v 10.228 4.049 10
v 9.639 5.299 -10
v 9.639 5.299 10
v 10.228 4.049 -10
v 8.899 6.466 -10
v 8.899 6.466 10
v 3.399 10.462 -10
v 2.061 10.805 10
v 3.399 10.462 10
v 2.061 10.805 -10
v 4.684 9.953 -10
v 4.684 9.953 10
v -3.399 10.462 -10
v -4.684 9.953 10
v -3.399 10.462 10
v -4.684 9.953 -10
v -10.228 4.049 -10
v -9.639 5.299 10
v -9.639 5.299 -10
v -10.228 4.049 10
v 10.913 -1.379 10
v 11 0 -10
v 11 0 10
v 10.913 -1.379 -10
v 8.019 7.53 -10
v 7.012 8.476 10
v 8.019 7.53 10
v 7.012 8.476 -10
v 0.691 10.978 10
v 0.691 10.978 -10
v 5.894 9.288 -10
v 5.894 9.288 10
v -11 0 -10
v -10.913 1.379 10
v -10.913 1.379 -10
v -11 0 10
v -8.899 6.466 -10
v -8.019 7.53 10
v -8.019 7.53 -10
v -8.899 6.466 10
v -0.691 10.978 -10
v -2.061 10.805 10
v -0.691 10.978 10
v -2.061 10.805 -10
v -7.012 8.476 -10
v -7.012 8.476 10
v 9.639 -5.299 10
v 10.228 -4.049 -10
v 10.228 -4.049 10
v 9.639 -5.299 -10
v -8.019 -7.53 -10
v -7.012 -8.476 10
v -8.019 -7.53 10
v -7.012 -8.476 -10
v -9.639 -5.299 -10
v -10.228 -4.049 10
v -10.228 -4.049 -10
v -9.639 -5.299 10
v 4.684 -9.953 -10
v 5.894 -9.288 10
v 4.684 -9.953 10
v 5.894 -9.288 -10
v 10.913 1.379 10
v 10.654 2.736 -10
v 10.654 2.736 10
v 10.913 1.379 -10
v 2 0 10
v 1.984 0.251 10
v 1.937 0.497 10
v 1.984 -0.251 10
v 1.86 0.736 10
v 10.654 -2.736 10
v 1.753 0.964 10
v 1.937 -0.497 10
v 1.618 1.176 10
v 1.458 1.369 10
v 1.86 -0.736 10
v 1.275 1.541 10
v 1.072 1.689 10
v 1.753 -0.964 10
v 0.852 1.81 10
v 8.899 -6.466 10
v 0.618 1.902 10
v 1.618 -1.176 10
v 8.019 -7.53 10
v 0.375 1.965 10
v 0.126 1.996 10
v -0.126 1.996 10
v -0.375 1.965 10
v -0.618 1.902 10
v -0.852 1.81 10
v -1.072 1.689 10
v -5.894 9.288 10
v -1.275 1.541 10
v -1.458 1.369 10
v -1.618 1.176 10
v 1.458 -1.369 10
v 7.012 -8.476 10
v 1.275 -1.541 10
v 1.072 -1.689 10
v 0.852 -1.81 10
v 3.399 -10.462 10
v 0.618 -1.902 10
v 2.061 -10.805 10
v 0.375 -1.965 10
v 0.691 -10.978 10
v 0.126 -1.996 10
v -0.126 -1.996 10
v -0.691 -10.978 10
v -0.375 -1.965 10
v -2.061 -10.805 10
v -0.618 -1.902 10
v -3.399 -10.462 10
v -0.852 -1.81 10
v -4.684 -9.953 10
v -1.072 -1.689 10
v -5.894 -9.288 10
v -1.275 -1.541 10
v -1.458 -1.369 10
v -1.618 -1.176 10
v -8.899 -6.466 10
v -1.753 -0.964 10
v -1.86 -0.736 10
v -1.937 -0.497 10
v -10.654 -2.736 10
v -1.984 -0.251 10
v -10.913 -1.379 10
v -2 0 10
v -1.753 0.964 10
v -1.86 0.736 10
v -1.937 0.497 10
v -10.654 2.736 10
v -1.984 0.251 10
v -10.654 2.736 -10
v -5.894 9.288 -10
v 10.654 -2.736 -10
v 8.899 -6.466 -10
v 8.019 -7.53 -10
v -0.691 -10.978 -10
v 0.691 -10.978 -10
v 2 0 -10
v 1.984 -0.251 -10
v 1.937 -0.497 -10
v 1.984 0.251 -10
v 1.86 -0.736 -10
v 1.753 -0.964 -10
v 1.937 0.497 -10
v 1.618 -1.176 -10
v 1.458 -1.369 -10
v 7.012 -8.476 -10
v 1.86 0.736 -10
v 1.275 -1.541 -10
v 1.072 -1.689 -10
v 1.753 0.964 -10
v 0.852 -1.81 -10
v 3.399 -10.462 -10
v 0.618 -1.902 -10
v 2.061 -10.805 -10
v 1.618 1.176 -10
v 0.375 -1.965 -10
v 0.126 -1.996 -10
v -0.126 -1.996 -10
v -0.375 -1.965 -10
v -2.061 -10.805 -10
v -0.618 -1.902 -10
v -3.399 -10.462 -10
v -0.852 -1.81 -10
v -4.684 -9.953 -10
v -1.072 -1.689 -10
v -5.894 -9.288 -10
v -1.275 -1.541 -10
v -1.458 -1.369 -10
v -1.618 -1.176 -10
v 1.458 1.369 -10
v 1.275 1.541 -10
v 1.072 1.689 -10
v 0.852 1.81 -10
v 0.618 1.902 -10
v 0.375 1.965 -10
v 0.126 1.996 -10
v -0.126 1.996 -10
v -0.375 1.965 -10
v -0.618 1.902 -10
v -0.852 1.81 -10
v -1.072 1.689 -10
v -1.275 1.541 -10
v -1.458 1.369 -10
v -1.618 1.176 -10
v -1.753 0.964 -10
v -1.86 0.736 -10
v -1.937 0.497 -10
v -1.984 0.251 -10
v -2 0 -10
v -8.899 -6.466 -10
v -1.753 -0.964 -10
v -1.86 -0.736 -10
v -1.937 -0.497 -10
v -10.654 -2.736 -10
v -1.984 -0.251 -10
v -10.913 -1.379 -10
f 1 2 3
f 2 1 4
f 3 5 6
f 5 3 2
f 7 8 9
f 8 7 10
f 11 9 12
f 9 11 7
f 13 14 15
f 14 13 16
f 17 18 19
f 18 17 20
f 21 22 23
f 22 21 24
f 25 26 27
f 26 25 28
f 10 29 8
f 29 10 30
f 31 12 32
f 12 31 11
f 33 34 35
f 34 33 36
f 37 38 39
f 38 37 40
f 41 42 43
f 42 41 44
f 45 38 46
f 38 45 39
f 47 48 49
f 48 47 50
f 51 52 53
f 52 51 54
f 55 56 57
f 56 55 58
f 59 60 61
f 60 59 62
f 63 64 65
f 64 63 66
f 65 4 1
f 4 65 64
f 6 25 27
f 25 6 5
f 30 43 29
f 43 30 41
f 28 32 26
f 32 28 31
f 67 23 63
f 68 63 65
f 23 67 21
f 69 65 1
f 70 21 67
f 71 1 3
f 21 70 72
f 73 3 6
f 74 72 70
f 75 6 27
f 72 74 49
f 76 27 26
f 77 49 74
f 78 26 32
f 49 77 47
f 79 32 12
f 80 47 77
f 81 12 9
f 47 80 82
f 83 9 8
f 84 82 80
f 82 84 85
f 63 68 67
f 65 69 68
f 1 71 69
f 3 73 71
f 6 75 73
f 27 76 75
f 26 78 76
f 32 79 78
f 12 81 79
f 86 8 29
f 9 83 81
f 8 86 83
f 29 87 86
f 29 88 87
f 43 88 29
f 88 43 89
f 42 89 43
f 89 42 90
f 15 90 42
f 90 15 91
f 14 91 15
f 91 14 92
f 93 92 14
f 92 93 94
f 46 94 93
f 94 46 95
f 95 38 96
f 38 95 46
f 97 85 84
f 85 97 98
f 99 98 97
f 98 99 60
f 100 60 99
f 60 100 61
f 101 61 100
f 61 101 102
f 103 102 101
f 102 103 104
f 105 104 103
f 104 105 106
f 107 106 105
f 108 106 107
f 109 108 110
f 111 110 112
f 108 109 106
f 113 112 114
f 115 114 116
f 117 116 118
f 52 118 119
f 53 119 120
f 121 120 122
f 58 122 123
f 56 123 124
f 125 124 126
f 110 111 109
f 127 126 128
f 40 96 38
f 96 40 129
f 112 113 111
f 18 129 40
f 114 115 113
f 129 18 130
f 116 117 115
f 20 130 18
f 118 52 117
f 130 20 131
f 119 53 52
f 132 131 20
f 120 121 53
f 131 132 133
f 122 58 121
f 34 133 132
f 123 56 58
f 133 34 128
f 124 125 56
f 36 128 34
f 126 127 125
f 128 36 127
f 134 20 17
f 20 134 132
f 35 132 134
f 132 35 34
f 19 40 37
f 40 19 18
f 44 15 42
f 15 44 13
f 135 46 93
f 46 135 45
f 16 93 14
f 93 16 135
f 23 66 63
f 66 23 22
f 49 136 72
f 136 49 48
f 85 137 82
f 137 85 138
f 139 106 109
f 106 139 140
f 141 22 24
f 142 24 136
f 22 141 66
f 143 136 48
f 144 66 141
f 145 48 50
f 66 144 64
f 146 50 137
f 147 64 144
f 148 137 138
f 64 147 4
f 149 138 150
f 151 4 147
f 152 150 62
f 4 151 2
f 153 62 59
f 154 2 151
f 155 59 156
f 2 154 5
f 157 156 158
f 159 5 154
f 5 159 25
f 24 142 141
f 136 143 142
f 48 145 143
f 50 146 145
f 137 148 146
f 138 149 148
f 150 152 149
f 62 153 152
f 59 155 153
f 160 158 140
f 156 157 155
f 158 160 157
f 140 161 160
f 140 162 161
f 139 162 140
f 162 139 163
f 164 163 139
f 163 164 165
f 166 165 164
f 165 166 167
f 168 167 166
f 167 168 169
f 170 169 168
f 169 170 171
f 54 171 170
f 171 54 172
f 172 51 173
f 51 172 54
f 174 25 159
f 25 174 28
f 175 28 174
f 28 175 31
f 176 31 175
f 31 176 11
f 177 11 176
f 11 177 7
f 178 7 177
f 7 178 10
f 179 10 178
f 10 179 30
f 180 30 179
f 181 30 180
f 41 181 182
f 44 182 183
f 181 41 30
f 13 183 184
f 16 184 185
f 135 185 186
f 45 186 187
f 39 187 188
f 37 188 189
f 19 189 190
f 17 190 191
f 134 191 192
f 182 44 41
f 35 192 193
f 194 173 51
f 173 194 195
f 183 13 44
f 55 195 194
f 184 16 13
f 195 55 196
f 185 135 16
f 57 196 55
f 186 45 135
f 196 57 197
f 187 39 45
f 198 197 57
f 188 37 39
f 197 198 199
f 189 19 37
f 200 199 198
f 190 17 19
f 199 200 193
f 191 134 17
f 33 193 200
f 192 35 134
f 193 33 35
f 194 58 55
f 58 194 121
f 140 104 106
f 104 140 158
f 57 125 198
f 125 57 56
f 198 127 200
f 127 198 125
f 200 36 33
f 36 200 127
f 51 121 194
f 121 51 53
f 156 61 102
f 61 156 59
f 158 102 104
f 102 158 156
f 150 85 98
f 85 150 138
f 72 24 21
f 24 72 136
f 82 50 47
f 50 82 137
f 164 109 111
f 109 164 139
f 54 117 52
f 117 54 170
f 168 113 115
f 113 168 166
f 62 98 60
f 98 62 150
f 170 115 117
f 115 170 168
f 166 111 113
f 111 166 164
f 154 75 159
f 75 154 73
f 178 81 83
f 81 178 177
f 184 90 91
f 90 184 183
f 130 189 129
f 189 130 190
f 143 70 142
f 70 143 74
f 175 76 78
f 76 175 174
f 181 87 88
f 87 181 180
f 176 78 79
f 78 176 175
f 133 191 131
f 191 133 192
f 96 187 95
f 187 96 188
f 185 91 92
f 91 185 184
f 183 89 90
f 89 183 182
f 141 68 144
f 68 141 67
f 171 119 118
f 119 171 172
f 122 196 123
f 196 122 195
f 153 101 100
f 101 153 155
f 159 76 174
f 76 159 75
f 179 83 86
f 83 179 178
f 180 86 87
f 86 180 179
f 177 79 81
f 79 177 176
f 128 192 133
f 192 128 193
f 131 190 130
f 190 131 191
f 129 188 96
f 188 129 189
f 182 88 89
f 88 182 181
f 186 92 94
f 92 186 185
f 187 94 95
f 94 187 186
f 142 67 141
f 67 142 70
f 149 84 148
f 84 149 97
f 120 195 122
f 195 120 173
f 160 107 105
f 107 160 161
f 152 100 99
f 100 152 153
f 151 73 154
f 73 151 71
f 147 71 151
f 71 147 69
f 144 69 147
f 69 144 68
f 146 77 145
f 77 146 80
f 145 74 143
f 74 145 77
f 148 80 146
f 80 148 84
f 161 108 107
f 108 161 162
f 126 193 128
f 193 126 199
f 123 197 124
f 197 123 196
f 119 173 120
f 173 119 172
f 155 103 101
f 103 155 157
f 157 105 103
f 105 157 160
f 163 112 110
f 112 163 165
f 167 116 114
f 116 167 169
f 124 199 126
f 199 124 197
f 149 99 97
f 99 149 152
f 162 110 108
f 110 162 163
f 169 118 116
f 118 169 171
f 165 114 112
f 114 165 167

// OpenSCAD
$fn = 50;


difference() {
	union() {
		translate(v = [0, 0, -10.0000000000]) {
			cylinder(h = 20, r = 11.0000000000);
		}
	}
	union() {
		translate(v = [0, 0, -100.0000000000]) {
			cylinder(h = 200, r = 2);
		}
	}
}
